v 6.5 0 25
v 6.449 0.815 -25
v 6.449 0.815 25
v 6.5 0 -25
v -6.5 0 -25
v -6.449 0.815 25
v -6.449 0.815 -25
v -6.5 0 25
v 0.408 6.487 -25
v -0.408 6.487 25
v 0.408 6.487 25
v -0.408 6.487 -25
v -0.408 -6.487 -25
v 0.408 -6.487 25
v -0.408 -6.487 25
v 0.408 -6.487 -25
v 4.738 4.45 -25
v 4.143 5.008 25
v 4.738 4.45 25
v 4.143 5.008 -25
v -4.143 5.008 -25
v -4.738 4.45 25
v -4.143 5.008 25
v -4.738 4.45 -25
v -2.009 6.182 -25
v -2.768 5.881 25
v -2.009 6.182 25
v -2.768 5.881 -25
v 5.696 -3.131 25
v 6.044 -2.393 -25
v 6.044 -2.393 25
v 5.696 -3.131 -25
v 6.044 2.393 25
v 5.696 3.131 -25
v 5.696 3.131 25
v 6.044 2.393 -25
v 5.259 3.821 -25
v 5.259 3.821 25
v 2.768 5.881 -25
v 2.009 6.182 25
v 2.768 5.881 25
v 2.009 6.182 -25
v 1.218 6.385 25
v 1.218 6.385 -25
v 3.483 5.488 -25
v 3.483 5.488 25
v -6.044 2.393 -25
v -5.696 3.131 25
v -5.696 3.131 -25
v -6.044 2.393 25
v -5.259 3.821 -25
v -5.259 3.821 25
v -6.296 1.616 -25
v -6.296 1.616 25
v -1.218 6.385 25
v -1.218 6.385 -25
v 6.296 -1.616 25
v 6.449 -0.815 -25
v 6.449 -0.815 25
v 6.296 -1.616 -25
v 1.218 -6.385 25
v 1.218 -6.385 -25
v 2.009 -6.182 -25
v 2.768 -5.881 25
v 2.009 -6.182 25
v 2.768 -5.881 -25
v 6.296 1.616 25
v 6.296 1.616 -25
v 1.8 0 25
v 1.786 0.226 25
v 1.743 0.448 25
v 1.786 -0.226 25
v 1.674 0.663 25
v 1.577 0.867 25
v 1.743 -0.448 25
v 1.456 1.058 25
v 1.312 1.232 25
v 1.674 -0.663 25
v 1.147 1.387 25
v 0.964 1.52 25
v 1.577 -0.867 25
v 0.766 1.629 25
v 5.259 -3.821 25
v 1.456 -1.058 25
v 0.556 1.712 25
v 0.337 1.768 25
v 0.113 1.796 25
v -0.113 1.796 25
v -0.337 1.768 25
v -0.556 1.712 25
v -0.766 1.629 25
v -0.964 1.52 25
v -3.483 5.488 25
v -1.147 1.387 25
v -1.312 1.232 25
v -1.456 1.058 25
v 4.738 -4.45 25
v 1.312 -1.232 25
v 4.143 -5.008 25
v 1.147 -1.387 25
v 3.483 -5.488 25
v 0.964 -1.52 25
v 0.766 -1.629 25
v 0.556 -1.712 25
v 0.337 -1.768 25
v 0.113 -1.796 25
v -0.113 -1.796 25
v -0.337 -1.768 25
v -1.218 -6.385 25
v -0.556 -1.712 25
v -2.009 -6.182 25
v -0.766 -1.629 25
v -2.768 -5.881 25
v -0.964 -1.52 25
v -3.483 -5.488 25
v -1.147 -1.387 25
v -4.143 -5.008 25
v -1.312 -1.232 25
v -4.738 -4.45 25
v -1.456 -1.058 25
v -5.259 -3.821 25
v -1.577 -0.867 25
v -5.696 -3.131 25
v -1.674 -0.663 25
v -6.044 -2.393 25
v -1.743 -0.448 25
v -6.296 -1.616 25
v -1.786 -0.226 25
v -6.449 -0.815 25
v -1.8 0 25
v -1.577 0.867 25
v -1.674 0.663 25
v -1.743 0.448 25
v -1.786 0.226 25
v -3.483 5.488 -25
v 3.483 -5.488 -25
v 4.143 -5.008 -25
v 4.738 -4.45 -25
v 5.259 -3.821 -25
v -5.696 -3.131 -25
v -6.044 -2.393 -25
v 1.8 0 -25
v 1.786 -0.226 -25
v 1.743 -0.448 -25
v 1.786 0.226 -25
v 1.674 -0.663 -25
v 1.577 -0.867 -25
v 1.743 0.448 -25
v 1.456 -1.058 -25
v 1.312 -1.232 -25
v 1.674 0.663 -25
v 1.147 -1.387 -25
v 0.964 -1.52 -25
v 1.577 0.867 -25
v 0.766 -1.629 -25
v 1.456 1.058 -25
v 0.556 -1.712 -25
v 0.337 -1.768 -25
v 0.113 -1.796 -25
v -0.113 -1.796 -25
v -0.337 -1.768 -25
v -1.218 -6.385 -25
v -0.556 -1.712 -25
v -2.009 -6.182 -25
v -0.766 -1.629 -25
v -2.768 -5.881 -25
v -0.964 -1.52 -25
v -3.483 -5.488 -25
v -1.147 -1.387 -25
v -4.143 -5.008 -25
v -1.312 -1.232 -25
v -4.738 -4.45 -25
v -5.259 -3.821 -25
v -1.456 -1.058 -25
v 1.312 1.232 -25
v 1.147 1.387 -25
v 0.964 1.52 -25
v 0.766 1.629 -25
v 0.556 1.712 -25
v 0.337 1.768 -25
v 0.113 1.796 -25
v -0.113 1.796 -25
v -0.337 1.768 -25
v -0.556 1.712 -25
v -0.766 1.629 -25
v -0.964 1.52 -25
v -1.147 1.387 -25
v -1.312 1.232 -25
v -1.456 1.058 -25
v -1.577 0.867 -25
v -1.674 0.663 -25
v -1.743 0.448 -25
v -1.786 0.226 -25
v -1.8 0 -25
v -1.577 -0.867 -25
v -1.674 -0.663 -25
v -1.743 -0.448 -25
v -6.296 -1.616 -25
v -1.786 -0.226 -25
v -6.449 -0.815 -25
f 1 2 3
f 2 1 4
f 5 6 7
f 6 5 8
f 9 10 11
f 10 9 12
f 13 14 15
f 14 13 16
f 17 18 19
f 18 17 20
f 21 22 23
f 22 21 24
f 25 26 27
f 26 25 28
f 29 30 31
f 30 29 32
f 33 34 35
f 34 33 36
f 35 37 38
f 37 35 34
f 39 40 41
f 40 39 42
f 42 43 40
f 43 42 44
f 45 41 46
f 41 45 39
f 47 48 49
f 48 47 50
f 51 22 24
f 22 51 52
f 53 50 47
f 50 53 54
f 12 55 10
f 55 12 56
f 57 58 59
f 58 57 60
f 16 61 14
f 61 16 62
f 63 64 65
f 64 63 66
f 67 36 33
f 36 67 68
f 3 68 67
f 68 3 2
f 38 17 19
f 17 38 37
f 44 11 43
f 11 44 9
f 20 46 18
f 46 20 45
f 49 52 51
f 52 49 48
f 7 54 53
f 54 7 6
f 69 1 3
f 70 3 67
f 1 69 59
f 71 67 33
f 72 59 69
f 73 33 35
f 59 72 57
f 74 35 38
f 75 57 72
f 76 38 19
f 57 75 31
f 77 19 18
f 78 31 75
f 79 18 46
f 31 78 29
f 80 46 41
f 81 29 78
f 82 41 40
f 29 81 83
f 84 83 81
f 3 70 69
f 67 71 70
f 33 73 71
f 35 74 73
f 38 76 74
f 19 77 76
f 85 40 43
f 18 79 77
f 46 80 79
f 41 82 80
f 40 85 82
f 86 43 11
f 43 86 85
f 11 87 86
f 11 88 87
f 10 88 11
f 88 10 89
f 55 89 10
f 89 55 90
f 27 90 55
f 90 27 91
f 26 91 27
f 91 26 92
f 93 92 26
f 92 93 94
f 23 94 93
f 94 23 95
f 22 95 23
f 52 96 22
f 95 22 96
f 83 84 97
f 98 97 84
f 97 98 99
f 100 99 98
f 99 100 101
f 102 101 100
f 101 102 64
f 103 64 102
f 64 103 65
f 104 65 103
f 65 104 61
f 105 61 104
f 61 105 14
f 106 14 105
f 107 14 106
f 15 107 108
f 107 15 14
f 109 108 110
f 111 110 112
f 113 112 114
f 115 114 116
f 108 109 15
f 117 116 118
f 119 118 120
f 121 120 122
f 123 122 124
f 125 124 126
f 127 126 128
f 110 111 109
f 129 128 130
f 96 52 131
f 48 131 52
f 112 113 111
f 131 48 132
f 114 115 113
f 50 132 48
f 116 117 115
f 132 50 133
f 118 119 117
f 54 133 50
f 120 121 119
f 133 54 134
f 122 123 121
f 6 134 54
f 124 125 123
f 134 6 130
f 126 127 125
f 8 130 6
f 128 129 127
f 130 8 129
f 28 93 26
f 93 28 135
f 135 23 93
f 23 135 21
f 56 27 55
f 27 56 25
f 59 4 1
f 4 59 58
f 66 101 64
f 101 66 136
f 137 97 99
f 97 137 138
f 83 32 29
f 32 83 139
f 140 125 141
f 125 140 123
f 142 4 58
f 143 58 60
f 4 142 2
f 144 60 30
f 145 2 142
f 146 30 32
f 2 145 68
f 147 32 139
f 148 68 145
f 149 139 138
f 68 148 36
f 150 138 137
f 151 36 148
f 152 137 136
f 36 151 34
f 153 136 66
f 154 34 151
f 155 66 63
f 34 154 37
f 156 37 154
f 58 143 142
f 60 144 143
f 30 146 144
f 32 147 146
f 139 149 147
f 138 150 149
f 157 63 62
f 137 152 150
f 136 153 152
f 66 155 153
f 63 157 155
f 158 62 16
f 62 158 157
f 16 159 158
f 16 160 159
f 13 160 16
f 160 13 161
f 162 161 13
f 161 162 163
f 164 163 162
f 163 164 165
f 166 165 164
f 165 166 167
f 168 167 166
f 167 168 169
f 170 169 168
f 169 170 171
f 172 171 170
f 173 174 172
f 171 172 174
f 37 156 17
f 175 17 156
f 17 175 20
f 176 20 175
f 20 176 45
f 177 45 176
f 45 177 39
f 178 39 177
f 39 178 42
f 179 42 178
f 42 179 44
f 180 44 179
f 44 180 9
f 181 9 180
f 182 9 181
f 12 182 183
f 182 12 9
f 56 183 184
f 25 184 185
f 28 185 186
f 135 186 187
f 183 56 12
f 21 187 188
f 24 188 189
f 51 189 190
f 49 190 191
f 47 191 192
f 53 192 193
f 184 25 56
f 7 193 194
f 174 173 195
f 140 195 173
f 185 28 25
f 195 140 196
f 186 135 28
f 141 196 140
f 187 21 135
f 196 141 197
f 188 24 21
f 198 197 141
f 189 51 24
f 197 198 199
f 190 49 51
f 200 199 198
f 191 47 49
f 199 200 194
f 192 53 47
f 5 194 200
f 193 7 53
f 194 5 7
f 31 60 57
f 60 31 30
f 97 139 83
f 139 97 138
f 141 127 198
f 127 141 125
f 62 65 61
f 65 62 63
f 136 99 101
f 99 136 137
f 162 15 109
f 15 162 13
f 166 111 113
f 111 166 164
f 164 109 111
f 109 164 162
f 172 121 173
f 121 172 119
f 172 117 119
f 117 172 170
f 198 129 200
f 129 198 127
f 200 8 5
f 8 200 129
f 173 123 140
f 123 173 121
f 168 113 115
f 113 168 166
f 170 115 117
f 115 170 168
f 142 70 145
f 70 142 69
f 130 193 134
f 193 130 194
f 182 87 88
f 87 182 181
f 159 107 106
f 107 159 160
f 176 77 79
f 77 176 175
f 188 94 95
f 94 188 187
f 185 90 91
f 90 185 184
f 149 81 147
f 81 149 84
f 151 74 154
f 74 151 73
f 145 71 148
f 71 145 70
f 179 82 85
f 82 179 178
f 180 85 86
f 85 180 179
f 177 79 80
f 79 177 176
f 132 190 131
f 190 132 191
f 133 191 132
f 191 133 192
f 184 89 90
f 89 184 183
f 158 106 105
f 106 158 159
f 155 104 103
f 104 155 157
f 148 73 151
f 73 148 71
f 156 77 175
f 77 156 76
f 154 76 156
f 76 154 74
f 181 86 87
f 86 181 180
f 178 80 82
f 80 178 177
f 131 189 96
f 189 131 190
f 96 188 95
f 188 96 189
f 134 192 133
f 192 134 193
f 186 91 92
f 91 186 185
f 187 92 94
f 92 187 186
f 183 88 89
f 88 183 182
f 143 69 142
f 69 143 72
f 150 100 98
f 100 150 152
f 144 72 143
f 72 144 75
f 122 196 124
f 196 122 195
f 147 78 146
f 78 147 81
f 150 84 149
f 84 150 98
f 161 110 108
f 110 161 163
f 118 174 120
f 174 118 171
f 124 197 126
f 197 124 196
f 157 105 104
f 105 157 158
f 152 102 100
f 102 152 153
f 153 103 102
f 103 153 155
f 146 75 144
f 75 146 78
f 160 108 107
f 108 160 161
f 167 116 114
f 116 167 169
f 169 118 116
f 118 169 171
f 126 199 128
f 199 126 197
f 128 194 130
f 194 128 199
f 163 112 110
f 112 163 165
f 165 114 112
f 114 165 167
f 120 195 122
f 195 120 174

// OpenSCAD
$fn = 50;


difference() {
	union() {
		translate(v = [0, 0, -25.0000000000]) {
			cylinder(h = 50, r = 6.5000000000);
		}
	}
	union() {
		translate(v = [0, 0, -100.0000000000]) {
			cylinder(h = 200, r = 1.8000000000);
		}
	}
}
